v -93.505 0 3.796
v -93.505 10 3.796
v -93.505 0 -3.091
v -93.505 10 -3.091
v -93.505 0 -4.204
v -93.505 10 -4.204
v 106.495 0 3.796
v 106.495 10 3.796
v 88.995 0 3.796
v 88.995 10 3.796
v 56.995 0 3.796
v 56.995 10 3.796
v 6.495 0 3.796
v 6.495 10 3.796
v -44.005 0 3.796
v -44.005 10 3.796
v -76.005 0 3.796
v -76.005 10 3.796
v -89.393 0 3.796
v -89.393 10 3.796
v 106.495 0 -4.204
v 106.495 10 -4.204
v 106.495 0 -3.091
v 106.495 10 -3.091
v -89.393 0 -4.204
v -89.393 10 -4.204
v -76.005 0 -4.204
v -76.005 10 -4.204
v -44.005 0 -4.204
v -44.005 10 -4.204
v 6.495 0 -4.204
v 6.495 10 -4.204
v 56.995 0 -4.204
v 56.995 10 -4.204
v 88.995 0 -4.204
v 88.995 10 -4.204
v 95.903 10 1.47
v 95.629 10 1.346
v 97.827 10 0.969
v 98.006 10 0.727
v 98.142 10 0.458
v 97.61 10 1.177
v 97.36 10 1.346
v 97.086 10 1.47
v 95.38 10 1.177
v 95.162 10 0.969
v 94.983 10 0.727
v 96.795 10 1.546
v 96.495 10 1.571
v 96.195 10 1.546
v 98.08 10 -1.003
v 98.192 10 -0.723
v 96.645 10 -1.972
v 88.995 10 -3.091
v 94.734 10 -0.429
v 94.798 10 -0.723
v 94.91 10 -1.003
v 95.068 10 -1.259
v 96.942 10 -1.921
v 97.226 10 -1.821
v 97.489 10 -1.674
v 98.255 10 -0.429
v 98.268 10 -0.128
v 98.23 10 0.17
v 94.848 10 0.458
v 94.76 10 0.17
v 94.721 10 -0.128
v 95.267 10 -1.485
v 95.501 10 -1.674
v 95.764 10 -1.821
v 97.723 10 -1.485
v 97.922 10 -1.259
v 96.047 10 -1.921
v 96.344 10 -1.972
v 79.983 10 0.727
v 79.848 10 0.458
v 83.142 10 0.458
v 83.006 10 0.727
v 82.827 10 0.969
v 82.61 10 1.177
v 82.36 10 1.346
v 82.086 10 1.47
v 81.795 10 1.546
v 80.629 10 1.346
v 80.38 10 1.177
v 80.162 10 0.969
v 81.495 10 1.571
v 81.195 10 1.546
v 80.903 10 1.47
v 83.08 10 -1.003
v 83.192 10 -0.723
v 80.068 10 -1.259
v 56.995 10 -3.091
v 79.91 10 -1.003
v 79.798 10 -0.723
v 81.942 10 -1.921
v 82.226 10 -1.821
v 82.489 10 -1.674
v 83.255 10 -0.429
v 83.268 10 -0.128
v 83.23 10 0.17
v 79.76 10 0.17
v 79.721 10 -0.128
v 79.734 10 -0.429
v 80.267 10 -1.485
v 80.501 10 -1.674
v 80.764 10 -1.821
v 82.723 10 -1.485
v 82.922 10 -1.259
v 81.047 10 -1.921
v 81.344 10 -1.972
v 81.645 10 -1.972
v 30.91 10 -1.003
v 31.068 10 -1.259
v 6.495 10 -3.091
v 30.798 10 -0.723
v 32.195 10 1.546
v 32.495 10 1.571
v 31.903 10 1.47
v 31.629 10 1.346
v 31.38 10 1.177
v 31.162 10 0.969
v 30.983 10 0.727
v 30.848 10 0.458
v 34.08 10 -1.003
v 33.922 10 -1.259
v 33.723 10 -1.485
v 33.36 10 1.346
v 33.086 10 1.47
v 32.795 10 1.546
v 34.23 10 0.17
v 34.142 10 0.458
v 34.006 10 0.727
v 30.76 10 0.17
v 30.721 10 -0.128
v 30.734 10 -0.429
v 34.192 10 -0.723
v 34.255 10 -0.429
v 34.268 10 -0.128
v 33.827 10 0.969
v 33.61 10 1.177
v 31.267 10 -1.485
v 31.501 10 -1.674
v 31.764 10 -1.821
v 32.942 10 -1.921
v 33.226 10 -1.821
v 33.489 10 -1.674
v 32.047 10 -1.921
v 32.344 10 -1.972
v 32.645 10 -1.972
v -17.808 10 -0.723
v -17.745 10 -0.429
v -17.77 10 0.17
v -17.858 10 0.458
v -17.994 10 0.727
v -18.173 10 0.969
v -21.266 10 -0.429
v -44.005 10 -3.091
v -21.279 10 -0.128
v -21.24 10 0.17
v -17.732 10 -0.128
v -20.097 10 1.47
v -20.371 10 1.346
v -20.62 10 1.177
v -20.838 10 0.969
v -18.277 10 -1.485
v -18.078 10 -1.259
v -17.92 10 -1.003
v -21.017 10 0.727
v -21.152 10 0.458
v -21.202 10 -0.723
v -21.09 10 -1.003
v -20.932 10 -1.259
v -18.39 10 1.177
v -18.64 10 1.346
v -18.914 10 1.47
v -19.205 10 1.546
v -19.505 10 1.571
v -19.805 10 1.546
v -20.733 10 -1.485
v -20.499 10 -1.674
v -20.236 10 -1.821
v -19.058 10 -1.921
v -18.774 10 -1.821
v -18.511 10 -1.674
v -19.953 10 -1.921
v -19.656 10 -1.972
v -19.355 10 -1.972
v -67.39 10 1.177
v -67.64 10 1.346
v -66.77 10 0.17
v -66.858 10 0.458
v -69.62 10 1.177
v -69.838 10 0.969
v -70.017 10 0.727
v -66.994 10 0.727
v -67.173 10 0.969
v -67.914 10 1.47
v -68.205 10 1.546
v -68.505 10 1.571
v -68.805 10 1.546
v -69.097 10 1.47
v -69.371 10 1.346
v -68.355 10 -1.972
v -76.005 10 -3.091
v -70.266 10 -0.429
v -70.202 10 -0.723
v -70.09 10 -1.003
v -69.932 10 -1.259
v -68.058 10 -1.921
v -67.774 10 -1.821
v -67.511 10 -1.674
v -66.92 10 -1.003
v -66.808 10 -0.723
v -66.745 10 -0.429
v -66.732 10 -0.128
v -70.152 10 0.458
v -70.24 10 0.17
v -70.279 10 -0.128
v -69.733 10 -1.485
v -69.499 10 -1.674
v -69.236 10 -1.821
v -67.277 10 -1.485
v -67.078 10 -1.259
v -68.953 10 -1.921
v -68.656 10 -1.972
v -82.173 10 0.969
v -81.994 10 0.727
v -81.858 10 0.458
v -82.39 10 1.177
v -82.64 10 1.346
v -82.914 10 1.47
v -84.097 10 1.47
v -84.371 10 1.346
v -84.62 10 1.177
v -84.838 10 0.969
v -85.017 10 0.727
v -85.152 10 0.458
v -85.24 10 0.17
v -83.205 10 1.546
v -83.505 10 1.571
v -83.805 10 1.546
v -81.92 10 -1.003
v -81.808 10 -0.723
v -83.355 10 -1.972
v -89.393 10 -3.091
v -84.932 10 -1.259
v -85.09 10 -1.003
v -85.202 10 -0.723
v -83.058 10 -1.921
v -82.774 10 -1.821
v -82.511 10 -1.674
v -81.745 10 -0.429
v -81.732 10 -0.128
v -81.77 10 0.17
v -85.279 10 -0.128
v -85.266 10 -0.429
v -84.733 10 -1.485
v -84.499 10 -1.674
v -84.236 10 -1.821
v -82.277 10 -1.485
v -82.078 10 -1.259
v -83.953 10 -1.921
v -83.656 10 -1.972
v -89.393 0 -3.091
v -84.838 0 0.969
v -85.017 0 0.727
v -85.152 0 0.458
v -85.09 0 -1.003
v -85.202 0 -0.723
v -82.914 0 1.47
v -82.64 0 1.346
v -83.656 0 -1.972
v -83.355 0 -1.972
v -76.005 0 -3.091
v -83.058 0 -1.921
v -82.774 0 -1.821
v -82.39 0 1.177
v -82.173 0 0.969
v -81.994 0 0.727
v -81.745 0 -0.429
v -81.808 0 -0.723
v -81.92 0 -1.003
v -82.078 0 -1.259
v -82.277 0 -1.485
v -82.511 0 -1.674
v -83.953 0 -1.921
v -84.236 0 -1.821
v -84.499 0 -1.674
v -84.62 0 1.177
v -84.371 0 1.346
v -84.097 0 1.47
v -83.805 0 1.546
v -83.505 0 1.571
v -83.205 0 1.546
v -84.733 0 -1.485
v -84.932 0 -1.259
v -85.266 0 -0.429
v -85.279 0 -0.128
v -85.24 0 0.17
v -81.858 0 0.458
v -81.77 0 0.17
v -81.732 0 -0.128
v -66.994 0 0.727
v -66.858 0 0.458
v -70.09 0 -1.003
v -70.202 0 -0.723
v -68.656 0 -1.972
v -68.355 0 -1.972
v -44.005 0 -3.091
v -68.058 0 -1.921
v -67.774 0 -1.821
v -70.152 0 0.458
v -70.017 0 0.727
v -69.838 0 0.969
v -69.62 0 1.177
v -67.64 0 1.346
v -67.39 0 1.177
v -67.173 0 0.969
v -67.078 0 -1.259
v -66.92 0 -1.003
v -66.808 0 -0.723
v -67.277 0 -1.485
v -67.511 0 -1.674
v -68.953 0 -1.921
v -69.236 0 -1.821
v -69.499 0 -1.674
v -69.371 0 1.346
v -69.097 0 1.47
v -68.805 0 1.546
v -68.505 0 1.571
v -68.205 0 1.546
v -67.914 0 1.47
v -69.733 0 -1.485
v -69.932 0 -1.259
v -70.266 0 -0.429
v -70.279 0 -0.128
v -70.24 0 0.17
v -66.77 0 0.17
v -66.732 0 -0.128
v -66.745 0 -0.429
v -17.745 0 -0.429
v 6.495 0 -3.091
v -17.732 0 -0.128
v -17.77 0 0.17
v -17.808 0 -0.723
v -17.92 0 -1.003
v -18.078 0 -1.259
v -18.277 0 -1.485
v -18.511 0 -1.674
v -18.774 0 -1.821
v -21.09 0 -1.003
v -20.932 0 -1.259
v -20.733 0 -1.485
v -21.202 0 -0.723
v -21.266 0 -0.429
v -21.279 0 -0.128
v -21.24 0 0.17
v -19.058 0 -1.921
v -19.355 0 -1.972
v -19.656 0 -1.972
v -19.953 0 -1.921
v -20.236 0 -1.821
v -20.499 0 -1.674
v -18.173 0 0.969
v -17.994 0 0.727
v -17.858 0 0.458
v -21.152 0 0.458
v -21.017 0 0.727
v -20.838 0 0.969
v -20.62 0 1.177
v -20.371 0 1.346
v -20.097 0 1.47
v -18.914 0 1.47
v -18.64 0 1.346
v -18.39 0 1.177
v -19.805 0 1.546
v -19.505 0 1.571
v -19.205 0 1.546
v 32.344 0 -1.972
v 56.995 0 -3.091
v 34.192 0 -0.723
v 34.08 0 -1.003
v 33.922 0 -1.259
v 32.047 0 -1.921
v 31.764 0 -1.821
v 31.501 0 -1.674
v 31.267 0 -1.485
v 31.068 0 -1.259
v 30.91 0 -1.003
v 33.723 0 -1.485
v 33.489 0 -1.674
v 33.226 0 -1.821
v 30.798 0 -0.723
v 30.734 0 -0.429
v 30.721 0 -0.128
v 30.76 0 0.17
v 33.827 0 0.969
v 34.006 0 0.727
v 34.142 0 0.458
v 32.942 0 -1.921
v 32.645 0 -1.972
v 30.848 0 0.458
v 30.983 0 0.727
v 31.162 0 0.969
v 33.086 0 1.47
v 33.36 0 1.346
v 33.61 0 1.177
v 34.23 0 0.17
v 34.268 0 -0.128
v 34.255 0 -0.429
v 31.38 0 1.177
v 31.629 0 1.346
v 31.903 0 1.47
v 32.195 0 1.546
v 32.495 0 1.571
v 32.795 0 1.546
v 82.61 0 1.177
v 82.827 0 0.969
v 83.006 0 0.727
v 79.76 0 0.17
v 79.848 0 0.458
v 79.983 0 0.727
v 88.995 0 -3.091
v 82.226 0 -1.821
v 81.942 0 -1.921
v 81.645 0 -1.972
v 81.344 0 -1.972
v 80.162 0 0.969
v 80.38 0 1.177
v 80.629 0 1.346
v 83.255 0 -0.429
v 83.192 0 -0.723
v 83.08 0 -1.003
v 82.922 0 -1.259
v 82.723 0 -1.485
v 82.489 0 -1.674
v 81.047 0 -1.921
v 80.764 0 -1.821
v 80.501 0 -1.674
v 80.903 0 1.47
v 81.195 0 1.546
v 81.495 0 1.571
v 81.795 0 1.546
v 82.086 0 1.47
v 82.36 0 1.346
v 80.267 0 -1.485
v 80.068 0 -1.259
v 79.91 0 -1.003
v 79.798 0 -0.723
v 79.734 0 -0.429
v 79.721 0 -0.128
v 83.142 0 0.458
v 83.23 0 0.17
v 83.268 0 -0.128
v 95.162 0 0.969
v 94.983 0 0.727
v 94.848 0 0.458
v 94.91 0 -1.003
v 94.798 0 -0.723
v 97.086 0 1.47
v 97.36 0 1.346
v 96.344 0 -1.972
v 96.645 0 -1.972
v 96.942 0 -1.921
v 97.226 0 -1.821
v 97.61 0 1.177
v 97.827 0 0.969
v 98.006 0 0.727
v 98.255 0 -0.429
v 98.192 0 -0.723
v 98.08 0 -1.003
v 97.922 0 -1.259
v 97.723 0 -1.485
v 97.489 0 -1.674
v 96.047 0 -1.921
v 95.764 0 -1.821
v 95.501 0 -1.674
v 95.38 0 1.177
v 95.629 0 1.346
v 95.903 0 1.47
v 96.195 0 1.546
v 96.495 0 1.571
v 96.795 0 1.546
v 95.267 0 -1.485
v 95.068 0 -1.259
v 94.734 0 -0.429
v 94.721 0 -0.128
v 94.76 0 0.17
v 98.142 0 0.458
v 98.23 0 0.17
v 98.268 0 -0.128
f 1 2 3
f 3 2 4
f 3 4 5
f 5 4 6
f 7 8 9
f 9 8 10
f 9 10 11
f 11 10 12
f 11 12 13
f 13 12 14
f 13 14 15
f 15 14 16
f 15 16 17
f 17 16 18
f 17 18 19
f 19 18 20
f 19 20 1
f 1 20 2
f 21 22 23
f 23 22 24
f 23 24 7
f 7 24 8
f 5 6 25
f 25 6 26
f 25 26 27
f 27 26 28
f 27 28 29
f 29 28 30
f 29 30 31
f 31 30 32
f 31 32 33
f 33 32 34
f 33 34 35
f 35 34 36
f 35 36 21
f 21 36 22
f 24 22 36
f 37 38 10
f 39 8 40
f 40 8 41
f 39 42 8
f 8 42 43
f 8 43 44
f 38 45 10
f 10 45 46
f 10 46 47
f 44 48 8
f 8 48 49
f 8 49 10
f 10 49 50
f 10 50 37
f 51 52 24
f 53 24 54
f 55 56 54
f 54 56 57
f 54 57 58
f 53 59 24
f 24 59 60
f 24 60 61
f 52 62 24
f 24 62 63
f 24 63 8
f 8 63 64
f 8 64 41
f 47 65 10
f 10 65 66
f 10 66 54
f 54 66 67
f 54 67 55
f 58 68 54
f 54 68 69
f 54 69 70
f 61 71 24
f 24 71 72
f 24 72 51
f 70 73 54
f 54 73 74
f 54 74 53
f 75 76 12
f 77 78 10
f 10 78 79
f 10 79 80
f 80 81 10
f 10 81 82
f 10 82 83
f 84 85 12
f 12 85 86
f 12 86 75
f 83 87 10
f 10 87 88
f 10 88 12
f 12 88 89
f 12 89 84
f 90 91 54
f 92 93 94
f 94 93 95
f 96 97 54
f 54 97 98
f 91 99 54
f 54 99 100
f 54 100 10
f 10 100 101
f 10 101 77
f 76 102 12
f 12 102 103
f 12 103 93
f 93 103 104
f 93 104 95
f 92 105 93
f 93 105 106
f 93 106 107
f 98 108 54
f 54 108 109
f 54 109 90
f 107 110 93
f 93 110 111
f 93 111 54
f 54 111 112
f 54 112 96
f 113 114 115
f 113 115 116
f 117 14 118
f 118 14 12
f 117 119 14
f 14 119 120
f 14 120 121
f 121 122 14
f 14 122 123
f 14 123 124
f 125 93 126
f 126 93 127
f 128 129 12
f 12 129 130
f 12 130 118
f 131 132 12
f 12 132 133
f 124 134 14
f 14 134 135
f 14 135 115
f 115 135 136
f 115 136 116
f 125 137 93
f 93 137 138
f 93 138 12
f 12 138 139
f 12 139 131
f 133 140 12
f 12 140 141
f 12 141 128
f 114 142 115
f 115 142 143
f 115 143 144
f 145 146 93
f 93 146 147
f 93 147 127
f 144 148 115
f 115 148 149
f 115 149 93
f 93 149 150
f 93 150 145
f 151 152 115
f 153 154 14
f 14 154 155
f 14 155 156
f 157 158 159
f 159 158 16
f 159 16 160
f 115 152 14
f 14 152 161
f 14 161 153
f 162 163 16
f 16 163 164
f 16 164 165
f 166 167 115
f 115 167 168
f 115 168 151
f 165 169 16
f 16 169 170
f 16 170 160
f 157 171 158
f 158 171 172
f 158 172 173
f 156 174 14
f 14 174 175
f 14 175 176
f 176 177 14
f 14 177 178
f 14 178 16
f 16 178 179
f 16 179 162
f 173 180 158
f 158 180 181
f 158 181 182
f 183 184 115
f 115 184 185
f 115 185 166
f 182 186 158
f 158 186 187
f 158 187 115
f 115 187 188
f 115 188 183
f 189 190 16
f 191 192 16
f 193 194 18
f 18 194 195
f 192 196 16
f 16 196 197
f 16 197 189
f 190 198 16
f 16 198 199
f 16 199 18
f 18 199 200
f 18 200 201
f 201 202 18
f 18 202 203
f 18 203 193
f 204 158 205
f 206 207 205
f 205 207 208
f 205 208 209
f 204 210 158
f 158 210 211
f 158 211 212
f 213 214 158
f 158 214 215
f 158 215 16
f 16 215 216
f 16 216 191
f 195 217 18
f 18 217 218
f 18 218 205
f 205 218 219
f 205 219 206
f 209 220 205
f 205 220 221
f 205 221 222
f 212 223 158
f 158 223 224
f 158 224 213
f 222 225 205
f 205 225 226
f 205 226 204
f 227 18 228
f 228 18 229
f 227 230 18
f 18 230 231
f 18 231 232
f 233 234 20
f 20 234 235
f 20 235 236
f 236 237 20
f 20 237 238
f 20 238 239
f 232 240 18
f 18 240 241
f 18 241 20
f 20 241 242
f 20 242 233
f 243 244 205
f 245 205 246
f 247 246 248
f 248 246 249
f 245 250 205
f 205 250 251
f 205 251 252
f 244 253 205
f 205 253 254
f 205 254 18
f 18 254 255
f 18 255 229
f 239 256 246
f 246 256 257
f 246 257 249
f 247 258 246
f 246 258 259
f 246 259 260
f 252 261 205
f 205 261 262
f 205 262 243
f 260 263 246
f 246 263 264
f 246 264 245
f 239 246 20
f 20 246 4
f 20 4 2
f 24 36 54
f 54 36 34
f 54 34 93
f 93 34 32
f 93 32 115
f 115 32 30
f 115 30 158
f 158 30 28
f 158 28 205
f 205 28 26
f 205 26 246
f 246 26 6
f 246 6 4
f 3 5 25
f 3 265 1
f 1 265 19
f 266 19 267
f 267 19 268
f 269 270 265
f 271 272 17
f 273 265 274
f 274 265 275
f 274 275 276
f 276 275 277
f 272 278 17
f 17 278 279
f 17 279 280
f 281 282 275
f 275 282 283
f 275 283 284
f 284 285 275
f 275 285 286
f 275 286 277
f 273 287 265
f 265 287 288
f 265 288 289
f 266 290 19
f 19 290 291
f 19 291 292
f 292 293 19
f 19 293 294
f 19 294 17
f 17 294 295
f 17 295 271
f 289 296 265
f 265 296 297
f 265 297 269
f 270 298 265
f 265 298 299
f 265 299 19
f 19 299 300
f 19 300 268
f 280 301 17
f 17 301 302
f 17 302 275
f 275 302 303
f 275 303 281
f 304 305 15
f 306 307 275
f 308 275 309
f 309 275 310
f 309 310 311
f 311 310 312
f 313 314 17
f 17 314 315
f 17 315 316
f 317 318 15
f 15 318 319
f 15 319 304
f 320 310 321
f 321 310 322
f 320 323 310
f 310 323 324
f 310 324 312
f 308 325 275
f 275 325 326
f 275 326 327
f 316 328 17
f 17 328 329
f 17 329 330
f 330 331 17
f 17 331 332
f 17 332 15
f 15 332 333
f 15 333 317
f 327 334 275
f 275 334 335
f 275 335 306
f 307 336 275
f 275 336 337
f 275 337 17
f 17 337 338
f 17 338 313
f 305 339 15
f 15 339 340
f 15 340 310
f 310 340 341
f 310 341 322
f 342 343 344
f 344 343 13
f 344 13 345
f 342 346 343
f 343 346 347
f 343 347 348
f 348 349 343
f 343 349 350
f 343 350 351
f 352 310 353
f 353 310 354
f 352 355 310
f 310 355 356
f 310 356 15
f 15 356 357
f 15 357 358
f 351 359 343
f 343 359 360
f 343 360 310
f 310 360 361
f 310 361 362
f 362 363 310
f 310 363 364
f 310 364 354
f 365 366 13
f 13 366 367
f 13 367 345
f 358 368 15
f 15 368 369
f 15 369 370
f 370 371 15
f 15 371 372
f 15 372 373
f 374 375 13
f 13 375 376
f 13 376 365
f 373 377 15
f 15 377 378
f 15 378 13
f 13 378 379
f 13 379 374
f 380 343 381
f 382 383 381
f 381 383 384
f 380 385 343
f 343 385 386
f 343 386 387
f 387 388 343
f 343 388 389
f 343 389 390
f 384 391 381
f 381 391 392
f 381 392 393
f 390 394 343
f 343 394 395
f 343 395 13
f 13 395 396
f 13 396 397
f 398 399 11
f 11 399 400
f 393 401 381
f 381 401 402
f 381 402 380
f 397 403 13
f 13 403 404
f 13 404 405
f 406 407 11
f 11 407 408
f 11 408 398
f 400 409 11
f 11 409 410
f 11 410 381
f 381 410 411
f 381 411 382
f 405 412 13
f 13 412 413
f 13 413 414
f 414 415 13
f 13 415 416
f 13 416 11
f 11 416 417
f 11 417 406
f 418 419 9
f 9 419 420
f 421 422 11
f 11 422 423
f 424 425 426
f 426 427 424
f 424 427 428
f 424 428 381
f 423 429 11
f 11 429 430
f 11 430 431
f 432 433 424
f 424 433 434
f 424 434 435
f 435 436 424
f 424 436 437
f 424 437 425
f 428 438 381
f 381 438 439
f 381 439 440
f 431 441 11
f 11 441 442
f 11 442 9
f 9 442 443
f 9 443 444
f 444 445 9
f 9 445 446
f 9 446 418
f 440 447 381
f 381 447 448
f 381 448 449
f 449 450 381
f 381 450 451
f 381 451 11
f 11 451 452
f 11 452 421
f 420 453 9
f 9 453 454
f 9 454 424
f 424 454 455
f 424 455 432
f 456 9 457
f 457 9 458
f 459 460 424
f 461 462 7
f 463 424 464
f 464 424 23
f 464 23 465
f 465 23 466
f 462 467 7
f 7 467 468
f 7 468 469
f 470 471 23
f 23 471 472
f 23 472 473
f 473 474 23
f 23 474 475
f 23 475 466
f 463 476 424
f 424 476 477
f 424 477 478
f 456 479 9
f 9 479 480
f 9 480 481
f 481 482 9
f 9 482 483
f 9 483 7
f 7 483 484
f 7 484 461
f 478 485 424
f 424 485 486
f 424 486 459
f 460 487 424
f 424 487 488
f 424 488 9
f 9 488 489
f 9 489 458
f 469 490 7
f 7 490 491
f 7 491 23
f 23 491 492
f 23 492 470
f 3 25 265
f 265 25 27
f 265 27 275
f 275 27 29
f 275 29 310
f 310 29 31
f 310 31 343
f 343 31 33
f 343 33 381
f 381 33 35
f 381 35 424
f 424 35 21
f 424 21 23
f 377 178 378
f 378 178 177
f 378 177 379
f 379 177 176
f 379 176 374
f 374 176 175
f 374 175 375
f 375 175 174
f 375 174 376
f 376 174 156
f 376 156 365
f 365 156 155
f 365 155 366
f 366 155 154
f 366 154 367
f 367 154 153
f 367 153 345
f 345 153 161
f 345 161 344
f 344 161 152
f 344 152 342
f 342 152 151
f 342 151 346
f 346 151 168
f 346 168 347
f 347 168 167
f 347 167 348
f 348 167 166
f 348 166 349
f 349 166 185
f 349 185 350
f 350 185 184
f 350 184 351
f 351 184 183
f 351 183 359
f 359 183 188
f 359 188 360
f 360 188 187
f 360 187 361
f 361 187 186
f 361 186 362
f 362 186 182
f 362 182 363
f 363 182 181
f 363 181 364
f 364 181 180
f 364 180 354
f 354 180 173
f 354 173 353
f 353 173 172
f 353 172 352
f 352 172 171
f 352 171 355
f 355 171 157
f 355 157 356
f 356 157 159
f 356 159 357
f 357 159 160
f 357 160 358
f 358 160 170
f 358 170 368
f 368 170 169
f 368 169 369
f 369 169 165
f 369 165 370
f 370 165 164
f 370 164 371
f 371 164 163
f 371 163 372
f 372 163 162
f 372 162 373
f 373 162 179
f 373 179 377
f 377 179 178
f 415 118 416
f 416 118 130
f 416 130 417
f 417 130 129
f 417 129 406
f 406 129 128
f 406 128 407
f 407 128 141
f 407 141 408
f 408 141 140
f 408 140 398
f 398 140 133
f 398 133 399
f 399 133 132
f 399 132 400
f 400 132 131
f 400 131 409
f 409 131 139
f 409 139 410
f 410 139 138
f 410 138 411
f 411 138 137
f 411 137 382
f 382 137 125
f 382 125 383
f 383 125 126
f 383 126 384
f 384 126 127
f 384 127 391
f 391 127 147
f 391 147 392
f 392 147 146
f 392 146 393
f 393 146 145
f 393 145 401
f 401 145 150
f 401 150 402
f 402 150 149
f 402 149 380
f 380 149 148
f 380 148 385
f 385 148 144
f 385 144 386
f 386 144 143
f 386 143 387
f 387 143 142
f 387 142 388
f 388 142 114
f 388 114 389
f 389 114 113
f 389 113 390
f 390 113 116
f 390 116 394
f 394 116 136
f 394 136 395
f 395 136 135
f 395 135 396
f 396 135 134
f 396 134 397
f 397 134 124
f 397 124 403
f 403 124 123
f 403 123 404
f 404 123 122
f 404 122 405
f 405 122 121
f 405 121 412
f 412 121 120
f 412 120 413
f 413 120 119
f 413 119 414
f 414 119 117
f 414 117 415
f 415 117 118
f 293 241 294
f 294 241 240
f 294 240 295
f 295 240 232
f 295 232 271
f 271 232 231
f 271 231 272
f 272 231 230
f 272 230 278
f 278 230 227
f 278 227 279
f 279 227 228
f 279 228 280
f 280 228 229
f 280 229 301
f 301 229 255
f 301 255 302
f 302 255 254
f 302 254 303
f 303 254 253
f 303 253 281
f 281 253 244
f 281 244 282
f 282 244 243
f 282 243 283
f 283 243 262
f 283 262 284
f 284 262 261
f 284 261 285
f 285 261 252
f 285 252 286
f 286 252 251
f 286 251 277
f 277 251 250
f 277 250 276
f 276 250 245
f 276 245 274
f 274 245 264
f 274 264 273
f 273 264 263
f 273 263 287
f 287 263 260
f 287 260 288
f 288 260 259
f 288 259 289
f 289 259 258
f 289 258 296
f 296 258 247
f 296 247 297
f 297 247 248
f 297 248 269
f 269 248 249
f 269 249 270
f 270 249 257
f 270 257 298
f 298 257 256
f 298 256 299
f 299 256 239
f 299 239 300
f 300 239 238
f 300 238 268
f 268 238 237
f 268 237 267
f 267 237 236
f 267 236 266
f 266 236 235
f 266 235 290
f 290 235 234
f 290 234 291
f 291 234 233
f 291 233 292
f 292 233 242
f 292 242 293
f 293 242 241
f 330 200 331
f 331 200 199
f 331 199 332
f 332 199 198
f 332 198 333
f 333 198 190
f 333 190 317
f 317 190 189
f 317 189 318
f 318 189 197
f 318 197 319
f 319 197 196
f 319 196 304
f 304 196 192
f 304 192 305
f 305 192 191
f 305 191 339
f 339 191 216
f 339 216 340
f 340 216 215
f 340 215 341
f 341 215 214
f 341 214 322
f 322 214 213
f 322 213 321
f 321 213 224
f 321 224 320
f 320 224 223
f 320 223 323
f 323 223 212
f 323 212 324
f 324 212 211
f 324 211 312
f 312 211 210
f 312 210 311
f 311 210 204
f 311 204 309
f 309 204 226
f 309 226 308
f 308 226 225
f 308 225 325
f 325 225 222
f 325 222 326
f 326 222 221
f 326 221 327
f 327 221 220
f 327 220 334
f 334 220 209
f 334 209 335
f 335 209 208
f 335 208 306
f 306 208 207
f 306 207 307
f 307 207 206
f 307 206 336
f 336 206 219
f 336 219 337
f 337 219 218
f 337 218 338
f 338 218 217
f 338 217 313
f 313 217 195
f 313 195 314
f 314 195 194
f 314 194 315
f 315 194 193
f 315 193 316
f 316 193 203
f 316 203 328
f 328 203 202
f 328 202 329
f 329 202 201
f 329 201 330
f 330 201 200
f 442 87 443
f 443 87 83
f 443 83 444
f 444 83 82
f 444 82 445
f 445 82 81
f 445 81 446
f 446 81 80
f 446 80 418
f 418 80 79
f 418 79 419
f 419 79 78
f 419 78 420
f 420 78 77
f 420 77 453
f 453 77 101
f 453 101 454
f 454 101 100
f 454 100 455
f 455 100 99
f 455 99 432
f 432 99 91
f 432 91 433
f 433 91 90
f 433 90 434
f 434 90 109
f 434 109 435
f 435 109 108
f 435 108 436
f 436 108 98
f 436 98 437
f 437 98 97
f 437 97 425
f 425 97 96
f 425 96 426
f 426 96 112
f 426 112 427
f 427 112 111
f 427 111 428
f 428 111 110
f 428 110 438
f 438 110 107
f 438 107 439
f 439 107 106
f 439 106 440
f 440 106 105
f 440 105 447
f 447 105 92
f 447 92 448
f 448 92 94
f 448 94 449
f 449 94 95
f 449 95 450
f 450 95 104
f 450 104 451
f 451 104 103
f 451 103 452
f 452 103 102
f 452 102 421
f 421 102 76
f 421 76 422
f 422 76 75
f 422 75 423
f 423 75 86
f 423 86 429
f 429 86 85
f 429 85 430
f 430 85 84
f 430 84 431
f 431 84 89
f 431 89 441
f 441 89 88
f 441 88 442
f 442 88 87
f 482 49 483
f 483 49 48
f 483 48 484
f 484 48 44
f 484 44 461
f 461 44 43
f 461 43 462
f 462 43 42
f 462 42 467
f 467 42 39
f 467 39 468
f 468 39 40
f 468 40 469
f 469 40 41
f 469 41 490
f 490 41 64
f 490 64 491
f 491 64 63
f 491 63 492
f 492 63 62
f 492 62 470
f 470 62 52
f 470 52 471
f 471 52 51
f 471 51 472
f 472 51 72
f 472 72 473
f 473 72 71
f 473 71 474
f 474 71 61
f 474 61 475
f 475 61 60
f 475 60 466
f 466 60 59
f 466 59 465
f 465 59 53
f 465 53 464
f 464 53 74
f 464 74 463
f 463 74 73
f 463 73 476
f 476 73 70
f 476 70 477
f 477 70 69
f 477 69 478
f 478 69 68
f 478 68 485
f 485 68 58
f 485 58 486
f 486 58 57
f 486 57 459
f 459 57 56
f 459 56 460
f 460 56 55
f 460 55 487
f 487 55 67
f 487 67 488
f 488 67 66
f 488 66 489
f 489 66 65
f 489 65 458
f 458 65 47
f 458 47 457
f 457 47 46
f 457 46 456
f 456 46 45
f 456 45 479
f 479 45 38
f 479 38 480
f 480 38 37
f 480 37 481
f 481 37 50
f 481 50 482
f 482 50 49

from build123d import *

# Parameters (mm, degrees)
SKETCH1_W           = 200
SKETCH1_H           = 8
BOSS_EXTRUDE1_DEPTH = 10
SKETCH2_R           = 1.775
CUT_EXTRUDE1_DEPTH  = 108.045777637
SKETCH3_R           = 1.775
CUT_EXTRUDE2_DEPTH  = 108.045777637


with BuildPart() as part:
    # Sketch1 → Boss-Extrude1 (new body)
    with BuildSketch(Plane(origin=(0, 0, 0), x_dir=(1, 0, 0), z_dir=(0, 1, 0))):
        with Locations((6.494727973, 0.203739262)):
            Rectangle(SKETCH1_W, SKETCH1_H)
    extrude(amount=BOSS_EXTRUDE1_DEPTH)

    # Sketch2 → Cut-Extrude1 (cut, through all)
    with BuildSketch(Plane(origin=(0, 10, 0), x_dir=(1, 0, 0), z_dir=(0, 1, 0))):
        with Locations(Location((-19.505272027, 0.203739262, 0), (0, 0, 270))):
            Circle(SKETCH2_R)
        with Locations(Location((32.494727973, 0.203739262, 0), (0, 0, 270))):
            Circle(SKETCH2_R)
    extrude(amount=-CUT_EXTRUDE1_DEPTH, mode=Mode.SUBTRACT)

    # Sketch3 → Cut-Extrude2 (cut, through all)
    with BuildSketch(Plane(origin=(0, 10, 0), x_dir=(1, 0, 0), z_dir=(0, 1, 0))):
        with Locations(Location((-83.505272027, 0.203739262, 0), (0, 0, 270))):
            Circle(SKETCH3_R)
        with Locations(Location((-68.505272027, 0.203739262, 0), (0, 0, 270))):
            Circle(SKETCH3_R)
        with Locations(Location((81.494727973, 0.203739262, 0), (0, 0, 270))):
            Circle(SKETCH3_R)
        with Locations(Location((96.494727973, 0.203739262, 0), (0, 0, 270))):
            Circle(SKETCH3_R)
    extrude(amount=-CUT_EXTRUDE2_DEPTH, mode=Mode.SUBTRACT)


solid = part.part
